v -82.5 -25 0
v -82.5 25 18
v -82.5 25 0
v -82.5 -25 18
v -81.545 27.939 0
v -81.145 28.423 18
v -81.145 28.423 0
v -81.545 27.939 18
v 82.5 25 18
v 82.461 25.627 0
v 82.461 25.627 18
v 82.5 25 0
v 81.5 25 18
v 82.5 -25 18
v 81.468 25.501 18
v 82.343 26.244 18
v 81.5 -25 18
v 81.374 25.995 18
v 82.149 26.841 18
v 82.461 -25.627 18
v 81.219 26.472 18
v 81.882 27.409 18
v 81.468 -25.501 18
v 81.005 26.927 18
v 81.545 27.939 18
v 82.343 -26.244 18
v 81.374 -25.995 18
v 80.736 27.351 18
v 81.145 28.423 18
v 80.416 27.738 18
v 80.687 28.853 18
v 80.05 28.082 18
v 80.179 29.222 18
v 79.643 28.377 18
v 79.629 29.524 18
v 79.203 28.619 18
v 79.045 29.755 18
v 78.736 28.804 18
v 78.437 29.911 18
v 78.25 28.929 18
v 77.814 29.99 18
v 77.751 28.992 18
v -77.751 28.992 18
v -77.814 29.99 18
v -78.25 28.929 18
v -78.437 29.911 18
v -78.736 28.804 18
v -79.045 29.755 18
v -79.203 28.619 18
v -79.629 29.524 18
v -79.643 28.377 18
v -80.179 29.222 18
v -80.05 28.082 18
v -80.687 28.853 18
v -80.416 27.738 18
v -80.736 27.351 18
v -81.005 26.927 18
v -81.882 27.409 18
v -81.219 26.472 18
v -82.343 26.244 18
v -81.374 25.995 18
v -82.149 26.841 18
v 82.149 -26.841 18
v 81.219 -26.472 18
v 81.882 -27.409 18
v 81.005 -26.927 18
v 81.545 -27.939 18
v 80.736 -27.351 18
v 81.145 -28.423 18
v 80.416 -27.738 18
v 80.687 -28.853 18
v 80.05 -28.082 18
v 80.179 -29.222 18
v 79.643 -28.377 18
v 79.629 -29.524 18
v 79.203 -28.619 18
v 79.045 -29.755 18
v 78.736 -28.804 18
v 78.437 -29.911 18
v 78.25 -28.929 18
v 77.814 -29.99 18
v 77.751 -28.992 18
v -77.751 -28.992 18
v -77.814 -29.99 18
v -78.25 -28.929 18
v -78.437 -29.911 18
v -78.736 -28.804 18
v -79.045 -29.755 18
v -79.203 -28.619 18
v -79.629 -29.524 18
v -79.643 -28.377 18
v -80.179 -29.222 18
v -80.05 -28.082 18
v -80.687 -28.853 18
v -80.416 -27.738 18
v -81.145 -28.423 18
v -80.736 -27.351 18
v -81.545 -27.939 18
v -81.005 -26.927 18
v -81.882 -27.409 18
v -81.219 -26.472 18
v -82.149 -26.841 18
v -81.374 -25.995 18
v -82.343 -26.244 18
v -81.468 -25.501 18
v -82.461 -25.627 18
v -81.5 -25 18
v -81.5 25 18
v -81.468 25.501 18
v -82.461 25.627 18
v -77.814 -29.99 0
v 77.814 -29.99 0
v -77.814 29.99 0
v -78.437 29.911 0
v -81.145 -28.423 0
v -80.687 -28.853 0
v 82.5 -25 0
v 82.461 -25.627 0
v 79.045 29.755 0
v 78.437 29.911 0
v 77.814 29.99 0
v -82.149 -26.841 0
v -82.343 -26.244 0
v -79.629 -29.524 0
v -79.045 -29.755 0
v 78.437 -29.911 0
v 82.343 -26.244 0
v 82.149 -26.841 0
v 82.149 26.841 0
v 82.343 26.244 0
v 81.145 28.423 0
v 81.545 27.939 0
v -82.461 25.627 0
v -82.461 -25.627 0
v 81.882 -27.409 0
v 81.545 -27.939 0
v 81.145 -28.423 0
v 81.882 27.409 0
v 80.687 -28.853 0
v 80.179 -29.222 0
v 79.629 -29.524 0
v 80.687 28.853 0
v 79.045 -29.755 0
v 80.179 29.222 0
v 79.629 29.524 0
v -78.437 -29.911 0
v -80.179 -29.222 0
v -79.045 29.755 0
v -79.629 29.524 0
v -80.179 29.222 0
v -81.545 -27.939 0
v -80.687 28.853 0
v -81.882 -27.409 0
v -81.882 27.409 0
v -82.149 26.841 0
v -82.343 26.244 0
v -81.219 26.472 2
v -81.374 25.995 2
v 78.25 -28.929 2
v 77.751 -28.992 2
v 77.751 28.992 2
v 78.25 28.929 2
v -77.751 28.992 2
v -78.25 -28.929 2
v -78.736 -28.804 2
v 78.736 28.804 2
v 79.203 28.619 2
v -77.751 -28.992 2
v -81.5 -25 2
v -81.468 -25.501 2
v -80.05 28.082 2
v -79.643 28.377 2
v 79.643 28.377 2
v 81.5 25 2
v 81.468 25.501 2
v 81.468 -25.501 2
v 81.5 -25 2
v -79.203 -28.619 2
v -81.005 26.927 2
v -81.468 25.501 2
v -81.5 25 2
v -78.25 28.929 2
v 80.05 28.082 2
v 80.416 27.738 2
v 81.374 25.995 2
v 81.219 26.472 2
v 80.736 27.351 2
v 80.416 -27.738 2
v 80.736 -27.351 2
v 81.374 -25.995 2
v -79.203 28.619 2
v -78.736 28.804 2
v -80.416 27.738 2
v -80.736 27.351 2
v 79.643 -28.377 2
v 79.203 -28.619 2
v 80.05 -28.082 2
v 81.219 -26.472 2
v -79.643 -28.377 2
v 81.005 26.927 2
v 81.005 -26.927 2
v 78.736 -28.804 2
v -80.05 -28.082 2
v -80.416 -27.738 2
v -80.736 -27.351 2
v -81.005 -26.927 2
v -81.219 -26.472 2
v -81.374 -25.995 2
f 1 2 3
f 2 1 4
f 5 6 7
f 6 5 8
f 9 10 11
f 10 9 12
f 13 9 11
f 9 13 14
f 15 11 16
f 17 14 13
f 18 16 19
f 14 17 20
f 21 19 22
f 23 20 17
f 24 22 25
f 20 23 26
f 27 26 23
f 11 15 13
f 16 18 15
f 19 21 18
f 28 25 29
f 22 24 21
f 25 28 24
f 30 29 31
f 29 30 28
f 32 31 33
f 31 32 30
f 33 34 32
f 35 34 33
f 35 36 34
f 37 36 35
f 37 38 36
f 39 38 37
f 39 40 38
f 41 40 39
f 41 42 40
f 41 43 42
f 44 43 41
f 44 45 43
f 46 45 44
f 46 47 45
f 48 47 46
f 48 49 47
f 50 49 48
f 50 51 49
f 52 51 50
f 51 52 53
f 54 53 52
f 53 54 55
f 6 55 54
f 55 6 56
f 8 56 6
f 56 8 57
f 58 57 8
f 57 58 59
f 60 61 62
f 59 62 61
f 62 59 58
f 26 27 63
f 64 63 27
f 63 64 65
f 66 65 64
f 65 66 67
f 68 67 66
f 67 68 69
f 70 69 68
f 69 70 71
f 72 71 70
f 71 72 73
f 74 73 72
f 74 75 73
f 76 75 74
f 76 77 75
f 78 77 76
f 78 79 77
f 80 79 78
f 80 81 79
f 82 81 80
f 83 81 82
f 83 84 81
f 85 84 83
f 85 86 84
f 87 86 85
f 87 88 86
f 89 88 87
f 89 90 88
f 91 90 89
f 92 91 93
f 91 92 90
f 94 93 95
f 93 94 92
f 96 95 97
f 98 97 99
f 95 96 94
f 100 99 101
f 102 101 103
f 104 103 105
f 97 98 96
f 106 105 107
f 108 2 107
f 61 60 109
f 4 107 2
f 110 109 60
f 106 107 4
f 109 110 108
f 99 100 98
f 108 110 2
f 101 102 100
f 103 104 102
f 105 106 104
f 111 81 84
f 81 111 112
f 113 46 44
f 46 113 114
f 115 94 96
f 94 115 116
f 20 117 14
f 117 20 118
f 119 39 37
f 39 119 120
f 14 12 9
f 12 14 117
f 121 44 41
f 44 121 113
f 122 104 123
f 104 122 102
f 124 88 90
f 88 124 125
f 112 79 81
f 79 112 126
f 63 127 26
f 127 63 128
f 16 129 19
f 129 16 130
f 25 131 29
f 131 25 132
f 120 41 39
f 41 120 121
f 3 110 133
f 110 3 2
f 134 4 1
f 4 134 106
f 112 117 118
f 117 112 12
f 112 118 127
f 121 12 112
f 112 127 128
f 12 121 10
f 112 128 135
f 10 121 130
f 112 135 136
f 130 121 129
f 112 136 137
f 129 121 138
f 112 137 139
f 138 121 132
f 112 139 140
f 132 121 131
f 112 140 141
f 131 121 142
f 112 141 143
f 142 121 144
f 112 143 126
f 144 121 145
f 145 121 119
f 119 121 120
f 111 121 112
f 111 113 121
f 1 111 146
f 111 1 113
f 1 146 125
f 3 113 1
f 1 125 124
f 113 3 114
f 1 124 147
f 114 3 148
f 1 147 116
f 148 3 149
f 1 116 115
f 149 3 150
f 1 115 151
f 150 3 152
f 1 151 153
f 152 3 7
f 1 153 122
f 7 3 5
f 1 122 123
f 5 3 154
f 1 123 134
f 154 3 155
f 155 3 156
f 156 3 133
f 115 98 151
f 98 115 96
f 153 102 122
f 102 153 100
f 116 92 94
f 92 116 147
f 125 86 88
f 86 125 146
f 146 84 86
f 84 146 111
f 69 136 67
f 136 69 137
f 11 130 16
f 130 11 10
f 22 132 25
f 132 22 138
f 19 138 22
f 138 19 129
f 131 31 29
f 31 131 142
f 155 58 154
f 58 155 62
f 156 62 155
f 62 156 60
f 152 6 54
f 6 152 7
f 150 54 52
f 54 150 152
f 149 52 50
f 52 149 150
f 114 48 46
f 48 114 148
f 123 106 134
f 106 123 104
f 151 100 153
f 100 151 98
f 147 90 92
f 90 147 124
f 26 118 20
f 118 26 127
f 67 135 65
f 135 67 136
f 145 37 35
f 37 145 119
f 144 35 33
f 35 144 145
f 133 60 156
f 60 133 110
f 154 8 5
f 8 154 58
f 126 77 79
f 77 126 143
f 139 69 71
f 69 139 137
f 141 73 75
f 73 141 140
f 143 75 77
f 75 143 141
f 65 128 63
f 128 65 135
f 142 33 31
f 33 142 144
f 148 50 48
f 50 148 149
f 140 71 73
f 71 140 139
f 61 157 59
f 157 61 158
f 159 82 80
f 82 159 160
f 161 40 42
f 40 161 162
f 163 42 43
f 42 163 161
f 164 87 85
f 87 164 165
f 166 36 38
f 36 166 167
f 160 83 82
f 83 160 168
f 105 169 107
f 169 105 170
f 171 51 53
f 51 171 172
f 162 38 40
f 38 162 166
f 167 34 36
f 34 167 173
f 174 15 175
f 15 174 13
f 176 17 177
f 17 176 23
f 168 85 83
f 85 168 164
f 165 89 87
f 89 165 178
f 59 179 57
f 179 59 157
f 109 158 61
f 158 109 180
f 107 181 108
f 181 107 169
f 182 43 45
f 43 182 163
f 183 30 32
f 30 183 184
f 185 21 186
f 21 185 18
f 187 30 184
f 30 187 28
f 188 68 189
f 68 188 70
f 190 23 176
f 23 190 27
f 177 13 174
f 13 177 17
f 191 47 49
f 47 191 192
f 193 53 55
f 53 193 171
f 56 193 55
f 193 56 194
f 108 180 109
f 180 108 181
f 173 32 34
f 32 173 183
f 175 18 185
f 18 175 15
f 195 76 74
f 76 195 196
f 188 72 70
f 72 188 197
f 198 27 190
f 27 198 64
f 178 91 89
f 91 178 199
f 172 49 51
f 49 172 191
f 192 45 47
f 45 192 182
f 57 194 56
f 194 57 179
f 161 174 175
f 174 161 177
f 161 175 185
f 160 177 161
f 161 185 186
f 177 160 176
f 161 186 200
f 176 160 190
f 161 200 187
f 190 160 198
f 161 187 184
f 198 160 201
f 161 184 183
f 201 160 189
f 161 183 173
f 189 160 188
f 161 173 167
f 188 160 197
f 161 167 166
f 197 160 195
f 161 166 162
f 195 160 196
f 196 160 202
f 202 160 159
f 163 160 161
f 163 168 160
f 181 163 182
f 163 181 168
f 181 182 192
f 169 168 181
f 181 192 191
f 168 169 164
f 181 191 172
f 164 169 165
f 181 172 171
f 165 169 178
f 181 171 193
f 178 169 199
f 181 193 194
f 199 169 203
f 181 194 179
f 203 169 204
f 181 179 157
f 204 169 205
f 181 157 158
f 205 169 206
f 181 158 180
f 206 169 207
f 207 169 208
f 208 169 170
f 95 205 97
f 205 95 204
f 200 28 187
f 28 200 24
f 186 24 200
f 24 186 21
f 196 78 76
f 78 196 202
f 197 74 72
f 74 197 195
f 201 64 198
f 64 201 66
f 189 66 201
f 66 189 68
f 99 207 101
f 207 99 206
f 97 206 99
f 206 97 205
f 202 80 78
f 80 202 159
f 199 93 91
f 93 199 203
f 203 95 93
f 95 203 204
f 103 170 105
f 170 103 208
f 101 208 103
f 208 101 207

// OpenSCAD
$fn = 50;


difference() {
	union() {
		hull() {
			translate(v = [-77.5000000000, 25.0000000000, 0]) {
				cylinder(h = 18, r = 5);
			}
			translate(v = [77.5000000000, 25.0000000000, 0]) {
				cylinder(h = 18, r = 5);
			}
			translate(v = [-77.5000000000, -25.0000000000, 0]) {
				cylinder(h = 18, r = 5);
			}
			translate(v = [77.5000000000, -25.0000000000, 0]) {
				cylinder(h = 18, r = 5);
			}
		}
	}
	union() {
		translate(v = [0, 0, 2]) {
			hull() {
				translate(v = [-77.5000000000, 25.0000000000, 0]) {
					cylinder(h = 16, r = 4);
				}
				translate(v = [77.5000000000, 25.0000000000, 0]) {
					cylinder(h = 16, r = 4);
				}
				translate(v = [-77.5000000000, -25.0000000000, 0]) {
					cylinder(h = 16, r = 4);
				}
				translate(v = [77.5000000000, -25.0000000000, 0]) {
					cylinder(h = 16, r = 4);
				}
			}
		}
	}
}
